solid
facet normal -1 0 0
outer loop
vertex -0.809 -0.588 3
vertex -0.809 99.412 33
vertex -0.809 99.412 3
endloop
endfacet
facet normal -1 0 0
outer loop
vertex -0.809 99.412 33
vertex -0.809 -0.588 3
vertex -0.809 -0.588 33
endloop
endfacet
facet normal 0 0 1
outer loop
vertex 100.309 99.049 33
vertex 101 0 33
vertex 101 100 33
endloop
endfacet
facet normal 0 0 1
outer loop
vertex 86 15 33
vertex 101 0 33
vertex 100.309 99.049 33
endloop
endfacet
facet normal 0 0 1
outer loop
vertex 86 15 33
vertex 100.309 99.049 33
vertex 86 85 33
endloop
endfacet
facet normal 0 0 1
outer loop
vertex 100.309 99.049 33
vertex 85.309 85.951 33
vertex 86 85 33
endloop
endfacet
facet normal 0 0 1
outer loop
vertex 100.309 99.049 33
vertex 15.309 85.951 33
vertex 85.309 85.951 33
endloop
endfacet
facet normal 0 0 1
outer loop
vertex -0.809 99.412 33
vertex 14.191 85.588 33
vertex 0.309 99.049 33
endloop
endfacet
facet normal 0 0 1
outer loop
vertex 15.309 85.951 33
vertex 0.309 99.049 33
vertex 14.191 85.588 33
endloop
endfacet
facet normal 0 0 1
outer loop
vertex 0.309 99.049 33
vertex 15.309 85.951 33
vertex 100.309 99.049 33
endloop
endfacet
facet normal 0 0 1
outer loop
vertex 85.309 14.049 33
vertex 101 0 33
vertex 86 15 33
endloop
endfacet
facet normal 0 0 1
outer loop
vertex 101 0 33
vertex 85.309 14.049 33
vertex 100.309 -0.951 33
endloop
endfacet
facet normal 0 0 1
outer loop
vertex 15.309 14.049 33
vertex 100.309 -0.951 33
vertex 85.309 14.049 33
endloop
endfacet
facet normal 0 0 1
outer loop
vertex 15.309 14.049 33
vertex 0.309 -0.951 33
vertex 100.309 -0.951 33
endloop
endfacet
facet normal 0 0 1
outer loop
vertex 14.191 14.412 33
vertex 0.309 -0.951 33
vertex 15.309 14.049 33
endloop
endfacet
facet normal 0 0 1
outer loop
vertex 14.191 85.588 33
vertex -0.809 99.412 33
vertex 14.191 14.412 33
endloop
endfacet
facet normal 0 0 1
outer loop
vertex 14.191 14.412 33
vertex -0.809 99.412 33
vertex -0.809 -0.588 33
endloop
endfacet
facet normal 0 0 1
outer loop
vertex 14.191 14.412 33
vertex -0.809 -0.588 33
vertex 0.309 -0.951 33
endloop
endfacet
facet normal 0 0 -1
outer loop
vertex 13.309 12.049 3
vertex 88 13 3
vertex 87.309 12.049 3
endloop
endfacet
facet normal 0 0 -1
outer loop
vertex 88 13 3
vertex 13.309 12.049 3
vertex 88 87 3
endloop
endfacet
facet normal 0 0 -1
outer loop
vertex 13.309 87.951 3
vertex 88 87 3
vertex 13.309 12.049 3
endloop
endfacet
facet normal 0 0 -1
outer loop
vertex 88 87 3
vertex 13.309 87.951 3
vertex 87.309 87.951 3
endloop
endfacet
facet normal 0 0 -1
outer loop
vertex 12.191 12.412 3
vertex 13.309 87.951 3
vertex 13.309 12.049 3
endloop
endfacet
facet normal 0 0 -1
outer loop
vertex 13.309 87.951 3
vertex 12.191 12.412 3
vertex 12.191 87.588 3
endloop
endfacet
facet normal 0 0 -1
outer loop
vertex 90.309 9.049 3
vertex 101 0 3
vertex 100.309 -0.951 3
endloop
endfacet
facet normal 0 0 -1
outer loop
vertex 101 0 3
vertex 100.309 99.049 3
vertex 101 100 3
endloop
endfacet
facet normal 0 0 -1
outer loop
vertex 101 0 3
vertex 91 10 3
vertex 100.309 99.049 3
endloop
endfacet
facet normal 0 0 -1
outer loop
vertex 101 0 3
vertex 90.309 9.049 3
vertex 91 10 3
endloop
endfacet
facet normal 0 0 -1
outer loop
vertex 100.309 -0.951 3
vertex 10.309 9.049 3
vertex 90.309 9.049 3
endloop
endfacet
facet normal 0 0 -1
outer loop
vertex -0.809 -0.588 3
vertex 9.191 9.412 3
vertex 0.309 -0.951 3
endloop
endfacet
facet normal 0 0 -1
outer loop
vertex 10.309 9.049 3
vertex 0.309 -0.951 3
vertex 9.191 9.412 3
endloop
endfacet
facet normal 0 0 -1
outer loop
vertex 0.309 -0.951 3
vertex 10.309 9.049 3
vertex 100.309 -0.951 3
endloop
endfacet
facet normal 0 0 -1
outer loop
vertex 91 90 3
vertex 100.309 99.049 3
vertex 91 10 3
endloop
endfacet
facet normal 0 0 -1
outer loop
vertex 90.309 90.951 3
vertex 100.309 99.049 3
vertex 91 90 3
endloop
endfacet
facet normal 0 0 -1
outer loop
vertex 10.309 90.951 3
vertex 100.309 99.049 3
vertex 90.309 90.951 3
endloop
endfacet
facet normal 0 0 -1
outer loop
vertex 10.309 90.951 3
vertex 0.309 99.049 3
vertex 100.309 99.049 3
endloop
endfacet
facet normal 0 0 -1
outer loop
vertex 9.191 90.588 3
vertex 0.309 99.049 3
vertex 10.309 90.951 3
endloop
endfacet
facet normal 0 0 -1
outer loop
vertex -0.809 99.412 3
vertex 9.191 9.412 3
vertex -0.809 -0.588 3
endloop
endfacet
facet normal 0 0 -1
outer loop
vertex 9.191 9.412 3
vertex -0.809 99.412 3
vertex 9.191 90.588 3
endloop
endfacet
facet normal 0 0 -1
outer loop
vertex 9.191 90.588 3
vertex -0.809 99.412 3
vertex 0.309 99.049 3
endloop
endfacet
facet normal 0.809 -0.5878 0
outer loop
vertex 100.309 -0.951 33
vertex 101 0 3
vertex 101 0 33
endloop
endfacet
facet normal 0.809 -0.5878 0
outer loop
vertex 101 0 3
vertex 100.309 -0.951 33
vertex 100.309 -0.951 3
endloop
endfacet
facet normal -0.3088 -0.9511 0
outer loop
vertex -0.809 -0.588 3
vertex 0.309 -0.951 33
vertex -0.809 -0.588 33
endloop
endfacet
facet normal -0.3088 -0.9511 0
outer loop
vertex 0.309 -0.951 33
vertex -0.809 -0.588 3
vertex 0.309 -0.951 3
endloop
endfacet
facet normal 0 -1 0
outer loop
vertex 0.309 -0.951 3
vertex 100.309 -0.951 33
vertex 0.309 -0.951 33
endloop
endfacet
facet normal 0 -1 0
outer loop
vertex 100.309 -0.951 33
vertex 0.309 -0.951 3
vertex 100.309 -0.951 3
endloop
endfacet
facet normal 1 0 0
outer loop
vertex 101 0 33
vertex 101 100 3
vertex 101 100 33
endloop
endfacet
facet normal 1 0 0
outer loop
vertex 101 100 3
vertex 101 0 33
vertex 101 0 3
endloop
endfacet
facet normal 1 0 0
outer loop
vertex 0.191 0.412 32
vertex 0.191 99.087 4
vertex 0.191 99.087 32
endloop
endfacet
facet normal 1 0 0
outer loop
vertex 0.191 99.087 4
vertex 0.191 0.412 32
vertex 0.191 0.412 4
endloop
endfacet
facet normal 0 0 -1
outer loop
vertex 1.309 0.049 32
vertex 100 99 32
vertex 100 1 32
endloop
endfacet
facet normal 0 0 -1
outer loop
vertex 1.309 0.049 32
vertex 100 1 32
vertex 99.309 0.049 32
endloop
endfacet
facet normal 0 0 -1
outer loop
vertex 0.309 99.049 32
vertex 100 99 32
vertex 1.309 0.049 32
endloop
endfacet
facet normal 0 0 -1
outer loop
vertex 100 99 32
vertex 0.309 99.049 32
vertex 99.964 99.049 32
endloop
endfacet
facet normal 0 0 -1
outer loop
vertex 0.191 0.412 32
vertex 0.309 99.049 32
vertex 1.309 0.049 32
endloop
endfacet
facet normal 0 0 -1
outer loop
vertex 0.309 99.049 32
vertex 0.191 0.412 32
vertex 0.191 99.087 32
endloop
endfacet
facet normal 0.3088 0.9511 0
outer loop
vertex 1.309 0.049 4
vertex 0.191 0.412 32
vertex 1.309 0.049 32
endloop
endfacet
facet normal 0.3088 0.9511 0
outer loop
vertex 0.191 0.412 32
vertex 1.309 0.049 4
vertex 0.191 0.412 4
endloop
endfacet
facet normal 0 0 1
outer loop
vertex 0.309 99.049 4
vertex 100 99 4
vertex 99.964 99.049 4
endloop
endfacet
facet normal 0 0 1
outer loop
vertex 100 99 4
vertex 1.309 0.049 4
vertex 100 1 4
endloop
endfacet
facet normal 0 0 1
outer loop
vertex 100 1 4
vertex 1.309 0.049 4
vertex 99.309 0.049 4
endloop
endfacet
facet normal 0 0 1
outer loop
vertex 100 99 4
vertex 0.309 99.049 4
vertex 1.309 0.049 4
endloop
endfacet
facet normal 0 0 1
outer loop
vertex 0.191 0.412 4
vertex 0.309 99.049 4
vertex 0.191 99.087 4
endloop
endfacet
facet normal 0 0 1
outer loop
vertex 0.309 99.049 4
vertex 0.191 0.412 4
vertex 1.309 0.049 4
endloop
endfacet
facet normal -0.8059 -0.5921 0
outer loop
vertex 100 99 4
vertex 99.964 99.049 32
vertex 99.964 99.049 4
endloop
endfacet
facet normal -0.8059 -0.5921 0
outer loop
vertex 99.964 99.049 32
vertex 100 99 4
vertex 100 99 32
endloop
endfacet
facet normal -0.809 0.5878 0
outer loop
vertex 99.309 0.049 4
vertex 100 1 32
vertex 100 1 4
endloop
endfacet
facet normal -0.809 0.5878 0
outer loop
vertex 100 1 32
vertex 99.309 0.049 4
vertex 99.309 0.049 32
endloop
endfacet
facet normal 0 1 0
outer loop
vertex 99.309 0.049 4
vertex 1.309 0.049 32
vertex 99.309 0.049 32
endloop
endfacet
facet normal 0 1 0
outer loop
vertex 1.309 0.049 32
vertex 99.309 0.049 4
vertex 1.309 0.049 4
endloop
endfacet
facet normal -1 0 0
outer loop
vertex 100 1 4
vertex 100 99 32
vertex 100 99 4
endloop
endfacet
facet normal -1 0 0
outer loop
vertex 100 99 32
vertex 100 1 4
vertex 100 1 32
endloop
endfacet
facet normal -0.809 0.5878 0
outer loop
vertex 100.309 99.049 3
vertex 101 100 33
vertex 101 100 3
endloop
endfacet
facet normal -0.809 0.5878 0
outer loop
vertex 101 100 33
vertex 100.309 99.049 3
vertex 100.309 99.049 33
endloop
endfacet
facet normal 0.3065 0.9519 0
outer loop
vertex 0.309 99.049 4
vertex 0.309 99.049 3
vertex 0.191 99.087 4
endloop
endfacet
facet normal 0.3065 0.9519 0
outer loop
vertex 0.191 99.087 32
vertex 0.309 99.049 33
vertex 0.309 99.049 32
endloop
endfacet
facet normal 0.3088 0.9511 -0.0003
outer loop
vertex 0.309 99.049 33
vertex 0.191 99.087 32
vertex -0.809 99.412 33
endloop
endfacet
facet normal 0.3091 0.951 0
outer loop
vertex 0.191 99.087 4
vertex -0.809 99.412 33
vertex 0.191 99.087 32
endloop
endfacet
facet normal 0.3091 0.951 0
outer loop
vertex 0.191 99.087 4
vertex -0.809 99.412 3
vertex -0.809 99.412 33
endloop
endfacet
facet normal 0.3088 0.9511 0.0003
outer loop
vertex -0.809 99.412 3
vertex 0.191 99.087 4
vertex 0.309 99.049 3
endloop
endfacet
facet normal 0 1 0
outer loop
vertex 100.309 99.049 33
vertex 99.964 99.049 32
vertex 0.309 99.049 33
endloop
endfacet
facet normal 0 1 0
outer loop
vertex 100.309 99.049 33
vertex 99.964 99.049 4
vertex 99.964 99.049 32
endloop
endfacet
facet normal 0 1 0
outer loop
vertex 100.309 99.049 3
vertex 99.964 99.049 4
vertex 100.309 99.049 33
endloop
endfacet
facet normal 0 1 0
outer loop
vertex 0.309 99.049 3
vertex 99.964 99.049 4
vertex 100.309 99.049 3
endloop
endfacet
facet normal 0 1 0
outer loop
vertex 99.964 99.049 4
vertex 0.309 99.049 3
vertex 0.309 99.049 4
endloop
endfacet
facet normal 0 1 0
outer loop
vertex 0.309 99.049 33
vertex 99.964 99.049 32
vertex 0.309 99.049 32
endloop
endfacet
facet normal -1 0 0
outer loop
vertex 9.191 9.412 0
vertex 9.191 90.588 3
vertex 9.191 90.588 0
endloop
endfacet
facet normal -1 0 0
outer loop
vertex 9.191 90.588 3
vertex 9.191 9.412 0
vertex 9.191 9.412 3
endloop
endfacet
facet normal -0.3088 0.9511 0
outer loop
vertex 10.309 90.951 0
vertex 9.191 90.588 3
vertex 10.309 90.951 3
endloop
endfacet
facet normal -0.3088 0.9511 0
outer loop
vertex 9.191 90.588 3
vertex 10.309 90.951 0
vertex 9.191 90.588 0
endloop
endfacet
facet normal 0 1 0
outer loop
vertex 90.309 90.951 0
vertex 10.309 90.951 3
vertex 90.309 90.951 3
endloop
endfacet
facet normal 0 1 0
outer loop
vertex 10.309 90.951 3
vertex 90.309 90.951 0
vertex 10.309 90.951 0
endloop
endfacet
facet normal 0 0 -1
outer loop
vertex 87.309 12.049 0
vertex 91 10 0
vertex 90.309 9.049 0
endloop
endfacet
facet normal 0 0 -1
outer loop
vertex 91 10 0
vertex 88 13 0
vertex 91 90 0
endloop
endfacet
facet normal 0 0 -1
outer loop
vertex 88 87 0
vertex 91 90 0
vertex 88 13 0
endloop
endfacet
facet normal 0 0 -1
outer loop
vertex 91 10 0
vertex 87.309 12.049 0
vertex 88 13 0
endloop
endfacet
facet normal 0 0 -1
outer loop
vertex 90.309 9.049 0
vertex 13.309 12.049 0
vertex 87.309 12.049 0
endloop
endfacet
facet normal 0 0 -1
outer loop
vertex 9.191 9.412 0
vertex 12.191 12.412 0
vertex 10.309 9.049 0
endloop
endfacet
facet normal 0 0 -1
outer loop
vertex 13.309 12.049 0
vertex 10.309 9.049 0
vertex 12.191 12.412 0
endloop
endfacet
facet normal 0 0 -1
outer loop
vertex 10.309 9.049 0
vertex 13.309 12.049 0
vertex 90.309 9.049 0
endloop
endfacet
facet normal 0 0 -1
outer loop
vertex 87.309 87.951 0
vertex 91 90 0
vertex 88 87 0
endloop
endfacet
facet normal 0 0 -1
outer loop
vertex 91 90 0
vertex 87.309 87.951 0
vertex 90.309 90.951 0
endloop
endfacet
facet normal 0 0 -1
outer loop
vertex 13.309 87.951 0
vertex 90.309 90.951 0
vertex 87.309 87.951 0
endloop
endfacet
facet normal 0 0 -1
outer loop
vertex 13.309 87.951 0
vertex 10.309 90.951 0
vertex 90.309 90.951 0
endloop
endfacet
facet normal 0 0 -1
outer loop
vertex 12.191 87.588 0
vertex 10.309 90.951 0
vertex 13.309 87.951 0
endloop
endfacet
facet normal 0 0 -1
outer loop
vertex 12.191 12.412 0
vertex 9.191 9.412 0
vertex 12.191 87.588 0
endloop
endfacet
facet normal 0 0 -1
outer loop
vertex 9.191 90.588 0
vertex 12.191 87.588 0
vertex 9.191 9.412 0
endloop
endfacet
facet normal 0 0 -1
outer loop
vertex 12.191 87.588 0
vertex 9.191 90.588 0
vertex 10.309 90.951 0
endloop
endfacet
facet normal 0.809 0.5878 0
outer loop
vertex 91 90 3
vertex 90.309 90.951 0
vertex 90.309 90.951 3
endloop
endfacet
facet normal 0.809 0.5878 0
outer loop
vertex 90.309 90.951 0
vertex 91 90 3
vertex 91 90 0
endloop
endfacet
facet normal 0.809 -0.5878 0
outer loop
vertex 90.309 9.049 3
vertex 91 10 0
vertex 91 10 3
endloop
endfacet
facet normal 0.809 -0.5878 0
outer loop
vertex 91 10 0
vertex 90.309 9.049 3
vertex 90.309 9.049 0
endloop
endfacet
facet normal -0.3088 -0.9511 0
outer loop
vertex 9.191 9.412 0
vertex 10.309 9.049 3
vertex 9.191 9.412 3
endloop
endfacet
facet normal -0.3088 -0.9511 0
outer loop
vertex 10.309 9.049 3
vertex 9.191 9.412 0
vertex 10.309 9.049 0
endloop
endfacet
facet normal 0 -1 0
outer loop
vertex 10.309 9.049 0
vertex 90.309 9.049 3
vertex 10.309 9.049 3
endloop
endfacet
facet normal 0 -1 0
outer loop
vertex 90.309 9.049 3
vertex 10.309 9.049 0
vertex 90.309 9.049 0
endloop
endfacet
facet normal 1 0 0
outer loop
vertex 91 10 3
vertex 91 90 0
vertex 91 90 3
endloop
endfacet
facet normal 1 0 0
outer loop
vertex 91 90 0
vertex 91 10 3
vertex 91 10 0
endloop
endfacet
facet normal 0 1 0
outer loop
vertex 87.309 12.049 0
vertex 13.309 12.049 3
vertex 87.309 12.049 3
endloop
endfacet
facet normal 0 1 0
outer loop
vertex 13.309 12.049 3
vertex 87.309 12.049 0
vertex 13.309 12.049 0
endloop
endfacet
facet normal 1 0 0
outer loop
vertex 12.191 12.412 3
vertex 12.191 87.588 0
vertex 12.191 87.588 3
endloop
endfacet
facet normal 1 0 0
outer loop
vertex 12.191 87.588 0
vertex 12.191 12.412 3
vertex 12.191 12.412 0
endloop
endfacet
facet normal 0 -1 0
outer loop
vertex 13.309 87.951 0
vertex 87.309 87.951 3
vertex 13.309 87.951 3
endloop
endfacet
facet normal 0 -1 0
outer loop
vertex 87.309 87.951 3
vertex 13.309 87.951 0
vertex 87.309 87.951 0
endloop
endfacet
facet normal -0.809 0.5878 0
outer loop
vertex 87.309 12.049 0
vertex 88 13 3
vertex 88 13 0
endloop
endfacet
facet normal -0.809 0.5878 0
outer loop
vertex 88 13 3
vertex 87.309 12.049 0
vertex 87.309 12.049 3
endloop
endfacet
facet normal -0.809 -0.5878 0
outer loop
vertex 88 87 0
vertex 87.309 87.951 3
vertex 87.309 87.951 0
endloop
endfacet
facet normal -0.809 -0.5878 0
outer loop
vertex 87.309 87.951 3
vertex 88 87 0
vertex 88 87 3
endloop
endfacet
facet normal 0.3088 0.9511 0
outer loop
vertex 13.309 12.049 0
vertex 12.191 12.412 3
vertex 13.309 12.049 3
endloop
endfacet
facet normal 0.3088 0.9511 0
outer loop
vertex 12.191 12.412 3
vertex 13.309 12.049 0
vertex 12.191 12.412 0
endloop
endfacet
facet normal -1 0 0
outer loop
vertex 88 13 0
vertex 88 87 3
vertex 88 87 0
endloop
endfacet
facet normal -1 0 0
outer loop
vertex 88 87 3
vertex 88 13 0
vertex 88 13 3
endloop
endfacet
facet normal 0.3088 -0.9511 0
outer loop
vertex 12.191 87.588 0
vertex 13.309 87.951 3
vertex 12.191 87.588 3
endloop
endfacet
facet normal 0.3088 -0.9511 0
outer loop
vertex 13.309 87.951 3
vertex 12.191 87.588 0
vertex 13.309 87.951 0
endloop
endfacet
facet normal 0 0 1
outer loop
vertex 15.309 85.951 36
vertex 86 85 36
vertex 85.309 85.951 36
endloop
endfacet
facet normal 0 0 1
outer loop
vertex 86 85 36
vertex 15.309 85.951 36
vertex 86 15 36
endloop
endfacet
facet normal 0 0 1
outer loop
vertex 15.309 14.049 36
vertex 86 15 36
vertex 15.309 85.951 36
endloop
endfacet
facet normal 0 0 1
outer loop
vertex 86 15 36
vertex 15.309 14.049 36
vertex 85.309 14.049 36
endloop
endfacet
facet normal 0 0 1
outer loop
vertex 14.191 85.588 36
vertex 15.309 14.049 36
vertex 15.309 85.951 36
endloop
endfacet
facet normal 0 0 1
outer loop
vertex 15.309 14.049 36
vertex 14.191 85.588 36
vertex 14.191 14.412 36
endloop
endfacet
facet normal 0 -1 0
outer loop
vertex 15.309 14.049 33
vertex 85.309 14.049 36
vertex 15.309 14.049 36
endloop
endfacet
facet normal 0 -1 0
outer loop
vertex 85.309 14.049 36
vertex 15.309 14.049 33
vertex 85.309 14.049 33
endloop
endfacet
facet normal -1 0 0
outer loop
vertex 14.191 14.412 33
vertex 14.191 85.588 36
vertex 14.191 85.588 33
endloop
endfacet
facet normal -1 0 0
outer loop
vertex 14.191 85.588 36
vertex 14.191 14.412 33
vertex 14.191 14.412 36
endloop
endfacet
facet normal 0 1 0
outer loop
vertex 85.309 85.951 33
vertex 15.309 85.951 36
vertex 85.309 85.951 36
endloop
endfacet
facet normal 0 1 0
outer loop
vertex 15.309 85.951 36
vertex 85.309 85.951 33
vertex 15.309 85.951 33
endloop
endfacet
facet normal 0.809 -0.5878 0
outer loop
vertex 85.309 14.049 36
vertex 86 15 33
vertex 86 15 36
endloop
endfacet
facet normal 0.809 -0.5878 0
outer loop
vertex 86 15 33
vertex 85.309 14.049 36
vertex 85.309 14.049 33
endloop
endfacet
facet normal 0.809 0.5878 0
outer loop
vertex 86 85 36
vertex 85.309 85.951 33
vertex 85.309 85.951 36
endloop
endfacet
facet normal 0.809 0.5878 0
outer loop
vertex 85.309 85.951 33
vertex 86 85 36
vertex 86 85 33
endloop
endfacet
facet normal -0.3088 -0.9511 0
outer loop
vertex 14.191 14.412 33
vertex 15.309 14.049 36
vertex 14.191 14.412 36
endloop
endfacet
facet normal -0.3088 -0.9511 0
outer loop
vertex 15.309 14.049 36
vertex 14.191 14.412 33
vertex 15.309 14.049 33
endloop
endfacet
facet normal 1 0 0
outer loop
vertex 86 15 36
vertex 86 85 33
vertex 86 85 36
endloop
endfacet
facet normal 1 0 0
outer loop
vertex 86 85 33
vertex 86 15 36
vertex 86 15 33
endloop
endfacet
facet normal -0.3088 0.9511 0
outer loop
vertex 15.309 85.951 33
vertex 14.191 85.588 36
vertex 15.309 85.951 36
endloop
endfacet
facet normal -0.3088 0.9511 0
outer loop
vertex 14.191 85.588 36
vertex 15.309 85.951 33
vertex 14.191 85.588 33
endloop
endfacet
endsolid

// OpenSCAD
//Box dimentions
box_length = 100;
box_width = box_length;
box_height = 30;
box_wall_thickness = 1;
box_z_offset = 0;
box_dimentions = [
[0,0,box_z_offset],
[box_length,0,box_z_offset],
[0,box_width,box_z_offset],
[box_length,box_width,box_z_offset]
];

//Box negative
negative_box_height = 0;
negative_box_dimentions = [
[0 + box_wall_thickness,0 + box_wall_thickness, negative_box_height + box_wall_thickness],
[box_length - box_wall_thickness, 0 + box_wall_thickness, negative_box_height + box_wall_thickness],
[0 + box_wall_thickness, box_width - box_wall_thickness, negative_box_height + box_wall_thickness],
[box_length - box_wall_thickness, box_width - box_wall_thickness, negative_box_height + box_wall_thickness]
];
front_dimentions = [
[box_length, box_width, box_z_offset],
[0, box_width, box_z_offset],
];

//Box foot
foot_width = box_length/100*80;
foot_depth = foot_width;
foot_thickness = 3;
foot_x_offset = box_length/100*10;
foot_y_offset = box_length/100*10;
foot_z_offset = 0;
foot_height = 3;
box_foot_dimentions = [
[0, 0, 0],
[0, foot_width, 0],
[foot_depth, 0, 0],
[foot_depth, foot_width, 0],
];

negative_box_foot_dimentions = [
[0 + foot_thickness, 0 + foot_thickness, 0],
[0 + foot_thickness, foot_width- foot_thickness, 0],
[foot_depth - foot_thickness, 0 + foot_thickness, 0],
[foot_depth -foot_thickness, foot_width - foot_thickness, 0],
];
//Box top connector
top_width = box_length/100*70;
top_depth = top_width;
top_thickness = 3;
top_x_offset = box_length/100*15;
top_y_offset = box_length/100*15;
top_z_offset = foot_height + box_height;
top_height = 3;
negative_box_top_dimentions = [
[0, 0, 0],
[0, top_width, 0],
[top_depth, 0, 0],
[top_depth, top_width, 0],
];

box_top_dimentions = [
[0 + top_thickness, 0 + top_thickness, 0],
[0 + top_thickness, top_width- top_thickness, 0],
[top_depth - top_thickness, 0 + top_thickness, 0],
[top_depth -top_thickness, top_width - top_thickness, 0],
];

//Construct the box
translate([0, 0, foot_height]){
	difference(){
		hull(){
		    for (dimention = box_dimentions){
		    	translate(dimention){
		    		cylinder(box_height, center=false);
		    	}
		    }
		}
		hull(){
		    for (dimention = negative_box_dimentions){
		    	translate(dimention){
		    		cylinder(box_height - box_wall_thickness *2, center=false);
		    	}
		    }
		}
		hull(){
		    for (dimention = front_dimentions){
			translate(dimention){
				cylinder(box_height * 100, center=false);
			}
		    }
		}
	}
}

translate([foot_x_offset, foot_y_offset, foot_z_offset]){
	difference(){
		hull(){
			for(dimention = box_foot_dimentions){
				translate(dimention){
					cylinder(foot_height);
				}
			}
		}
		hull(){
			for(dimention = negative_box_foot_dimentions){
				translate(dimention){
					cylinder(foot_height);
				}
			}
		}
	}
}
translate([top_x_offset, top_y_offset, top_z_offset]){
	union(){
		hull(){
			for(dimention = box_top_dimentions){
				translate(dimention){
					cylinder(top_height);
				}
			}
		}
		hull(){
			for(dimention = negative_box_top_dimentions){
				translate(dimention){
					cylinder(top_height);
				}
			}
		}
	}
}

// inkpad
inkpad_location_x = 10;
inkpad_location_y = 10;
inkpad_location_z = box_wall_thickness + 3;

translate([inkpad_location_x, inkpad_location_y, inkpad_location_z]){
//	import ("inkpad.stl");
}
